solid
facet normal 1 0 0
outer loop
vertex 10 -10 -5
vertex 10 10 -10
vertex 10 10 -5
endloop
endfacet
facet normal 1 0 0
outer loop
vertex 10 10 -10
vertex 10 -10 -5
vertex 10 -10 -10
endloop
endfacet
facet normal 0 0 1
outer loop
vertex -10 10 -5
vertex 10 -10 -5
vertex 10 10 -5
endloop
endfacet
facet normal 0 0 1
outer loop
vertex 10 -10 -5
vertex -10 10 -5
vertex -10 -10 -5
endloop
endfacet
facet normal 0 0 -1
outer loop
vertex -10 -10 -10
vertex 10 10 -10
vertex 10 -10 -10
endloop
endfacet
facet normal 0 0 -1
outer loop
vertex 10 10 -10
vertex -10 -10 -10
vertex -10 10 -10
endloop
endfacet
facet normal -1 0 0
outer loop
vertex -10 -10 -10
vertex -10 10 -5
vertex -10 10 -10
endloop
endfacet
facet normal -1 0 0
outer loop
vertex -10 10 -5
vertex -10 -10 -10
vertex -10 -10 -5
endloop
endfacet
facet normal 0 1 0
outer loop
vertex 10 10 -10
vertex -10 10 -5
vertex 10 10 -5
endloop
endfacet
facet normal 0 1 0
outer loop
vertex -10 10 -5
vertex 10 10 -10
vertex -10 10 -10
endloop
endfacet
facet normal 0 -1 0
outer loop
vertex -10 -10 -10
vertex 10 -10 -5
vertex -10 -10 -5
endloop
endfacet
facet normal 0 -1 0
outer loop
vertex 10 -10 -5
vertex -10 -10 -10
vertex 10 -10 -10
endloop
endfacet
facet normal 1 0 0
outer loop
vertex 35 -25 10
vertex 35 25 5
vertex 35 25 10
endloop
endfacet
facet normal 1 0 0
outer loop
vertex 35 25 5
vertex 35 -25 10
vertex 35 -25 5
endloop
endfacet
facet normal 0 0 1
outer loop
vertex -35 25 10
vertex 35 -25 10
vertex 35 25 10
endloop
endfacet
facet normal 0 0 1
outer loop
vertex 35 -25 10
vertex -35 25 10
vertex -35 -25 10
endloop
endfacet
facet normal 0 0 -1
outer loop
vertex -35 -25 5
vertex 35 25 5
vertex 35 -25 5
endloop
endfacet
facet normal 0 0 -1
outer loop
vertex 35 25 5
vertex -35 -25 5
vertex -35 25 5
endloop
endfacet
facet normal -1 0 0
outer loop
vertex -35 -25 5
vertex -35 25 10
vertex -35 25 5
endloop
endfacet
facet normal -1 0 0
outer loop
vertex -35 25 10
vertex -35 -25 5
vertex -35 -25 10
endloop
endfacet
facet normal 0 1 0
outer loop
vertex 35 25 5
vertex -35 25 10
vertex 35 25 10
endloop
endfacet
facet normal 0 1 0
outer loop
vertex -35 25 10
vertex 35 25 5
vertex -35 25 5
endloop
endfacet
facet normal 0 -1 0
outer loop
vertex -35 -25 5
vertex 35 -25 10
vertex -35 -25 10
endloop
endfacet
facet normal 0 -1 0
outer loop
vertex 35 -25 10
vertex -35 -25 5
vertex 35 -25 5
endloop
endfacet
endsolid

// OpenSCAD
// Define dimensions for the rectangular flat plate
module rectangular_flat_plate() {
    translate([0, 0, 7.5])  // Adjusted position to match the original model
    cube([70, 50, 5], center = true);  // Corrected dimensions: 70x50x5
}

// Define dimensions for the square plate with a hole
module square_plate_with_hole() {
    difference() {
        translate([0, 0, -7.5])  // Adjusted position to match the original model
        cube([20, 20, 5], center = true);  // Dimensions: 20x20x5
        translate([0, 0, 0])  // Center hole
        cylinder(r=5, h=5, center = true);
    }
}

// Assemble the components
module assembly() {
    rectangular_flat_plate();
    square_plate_with_hole();
}

// Render the assembly
assembly();
